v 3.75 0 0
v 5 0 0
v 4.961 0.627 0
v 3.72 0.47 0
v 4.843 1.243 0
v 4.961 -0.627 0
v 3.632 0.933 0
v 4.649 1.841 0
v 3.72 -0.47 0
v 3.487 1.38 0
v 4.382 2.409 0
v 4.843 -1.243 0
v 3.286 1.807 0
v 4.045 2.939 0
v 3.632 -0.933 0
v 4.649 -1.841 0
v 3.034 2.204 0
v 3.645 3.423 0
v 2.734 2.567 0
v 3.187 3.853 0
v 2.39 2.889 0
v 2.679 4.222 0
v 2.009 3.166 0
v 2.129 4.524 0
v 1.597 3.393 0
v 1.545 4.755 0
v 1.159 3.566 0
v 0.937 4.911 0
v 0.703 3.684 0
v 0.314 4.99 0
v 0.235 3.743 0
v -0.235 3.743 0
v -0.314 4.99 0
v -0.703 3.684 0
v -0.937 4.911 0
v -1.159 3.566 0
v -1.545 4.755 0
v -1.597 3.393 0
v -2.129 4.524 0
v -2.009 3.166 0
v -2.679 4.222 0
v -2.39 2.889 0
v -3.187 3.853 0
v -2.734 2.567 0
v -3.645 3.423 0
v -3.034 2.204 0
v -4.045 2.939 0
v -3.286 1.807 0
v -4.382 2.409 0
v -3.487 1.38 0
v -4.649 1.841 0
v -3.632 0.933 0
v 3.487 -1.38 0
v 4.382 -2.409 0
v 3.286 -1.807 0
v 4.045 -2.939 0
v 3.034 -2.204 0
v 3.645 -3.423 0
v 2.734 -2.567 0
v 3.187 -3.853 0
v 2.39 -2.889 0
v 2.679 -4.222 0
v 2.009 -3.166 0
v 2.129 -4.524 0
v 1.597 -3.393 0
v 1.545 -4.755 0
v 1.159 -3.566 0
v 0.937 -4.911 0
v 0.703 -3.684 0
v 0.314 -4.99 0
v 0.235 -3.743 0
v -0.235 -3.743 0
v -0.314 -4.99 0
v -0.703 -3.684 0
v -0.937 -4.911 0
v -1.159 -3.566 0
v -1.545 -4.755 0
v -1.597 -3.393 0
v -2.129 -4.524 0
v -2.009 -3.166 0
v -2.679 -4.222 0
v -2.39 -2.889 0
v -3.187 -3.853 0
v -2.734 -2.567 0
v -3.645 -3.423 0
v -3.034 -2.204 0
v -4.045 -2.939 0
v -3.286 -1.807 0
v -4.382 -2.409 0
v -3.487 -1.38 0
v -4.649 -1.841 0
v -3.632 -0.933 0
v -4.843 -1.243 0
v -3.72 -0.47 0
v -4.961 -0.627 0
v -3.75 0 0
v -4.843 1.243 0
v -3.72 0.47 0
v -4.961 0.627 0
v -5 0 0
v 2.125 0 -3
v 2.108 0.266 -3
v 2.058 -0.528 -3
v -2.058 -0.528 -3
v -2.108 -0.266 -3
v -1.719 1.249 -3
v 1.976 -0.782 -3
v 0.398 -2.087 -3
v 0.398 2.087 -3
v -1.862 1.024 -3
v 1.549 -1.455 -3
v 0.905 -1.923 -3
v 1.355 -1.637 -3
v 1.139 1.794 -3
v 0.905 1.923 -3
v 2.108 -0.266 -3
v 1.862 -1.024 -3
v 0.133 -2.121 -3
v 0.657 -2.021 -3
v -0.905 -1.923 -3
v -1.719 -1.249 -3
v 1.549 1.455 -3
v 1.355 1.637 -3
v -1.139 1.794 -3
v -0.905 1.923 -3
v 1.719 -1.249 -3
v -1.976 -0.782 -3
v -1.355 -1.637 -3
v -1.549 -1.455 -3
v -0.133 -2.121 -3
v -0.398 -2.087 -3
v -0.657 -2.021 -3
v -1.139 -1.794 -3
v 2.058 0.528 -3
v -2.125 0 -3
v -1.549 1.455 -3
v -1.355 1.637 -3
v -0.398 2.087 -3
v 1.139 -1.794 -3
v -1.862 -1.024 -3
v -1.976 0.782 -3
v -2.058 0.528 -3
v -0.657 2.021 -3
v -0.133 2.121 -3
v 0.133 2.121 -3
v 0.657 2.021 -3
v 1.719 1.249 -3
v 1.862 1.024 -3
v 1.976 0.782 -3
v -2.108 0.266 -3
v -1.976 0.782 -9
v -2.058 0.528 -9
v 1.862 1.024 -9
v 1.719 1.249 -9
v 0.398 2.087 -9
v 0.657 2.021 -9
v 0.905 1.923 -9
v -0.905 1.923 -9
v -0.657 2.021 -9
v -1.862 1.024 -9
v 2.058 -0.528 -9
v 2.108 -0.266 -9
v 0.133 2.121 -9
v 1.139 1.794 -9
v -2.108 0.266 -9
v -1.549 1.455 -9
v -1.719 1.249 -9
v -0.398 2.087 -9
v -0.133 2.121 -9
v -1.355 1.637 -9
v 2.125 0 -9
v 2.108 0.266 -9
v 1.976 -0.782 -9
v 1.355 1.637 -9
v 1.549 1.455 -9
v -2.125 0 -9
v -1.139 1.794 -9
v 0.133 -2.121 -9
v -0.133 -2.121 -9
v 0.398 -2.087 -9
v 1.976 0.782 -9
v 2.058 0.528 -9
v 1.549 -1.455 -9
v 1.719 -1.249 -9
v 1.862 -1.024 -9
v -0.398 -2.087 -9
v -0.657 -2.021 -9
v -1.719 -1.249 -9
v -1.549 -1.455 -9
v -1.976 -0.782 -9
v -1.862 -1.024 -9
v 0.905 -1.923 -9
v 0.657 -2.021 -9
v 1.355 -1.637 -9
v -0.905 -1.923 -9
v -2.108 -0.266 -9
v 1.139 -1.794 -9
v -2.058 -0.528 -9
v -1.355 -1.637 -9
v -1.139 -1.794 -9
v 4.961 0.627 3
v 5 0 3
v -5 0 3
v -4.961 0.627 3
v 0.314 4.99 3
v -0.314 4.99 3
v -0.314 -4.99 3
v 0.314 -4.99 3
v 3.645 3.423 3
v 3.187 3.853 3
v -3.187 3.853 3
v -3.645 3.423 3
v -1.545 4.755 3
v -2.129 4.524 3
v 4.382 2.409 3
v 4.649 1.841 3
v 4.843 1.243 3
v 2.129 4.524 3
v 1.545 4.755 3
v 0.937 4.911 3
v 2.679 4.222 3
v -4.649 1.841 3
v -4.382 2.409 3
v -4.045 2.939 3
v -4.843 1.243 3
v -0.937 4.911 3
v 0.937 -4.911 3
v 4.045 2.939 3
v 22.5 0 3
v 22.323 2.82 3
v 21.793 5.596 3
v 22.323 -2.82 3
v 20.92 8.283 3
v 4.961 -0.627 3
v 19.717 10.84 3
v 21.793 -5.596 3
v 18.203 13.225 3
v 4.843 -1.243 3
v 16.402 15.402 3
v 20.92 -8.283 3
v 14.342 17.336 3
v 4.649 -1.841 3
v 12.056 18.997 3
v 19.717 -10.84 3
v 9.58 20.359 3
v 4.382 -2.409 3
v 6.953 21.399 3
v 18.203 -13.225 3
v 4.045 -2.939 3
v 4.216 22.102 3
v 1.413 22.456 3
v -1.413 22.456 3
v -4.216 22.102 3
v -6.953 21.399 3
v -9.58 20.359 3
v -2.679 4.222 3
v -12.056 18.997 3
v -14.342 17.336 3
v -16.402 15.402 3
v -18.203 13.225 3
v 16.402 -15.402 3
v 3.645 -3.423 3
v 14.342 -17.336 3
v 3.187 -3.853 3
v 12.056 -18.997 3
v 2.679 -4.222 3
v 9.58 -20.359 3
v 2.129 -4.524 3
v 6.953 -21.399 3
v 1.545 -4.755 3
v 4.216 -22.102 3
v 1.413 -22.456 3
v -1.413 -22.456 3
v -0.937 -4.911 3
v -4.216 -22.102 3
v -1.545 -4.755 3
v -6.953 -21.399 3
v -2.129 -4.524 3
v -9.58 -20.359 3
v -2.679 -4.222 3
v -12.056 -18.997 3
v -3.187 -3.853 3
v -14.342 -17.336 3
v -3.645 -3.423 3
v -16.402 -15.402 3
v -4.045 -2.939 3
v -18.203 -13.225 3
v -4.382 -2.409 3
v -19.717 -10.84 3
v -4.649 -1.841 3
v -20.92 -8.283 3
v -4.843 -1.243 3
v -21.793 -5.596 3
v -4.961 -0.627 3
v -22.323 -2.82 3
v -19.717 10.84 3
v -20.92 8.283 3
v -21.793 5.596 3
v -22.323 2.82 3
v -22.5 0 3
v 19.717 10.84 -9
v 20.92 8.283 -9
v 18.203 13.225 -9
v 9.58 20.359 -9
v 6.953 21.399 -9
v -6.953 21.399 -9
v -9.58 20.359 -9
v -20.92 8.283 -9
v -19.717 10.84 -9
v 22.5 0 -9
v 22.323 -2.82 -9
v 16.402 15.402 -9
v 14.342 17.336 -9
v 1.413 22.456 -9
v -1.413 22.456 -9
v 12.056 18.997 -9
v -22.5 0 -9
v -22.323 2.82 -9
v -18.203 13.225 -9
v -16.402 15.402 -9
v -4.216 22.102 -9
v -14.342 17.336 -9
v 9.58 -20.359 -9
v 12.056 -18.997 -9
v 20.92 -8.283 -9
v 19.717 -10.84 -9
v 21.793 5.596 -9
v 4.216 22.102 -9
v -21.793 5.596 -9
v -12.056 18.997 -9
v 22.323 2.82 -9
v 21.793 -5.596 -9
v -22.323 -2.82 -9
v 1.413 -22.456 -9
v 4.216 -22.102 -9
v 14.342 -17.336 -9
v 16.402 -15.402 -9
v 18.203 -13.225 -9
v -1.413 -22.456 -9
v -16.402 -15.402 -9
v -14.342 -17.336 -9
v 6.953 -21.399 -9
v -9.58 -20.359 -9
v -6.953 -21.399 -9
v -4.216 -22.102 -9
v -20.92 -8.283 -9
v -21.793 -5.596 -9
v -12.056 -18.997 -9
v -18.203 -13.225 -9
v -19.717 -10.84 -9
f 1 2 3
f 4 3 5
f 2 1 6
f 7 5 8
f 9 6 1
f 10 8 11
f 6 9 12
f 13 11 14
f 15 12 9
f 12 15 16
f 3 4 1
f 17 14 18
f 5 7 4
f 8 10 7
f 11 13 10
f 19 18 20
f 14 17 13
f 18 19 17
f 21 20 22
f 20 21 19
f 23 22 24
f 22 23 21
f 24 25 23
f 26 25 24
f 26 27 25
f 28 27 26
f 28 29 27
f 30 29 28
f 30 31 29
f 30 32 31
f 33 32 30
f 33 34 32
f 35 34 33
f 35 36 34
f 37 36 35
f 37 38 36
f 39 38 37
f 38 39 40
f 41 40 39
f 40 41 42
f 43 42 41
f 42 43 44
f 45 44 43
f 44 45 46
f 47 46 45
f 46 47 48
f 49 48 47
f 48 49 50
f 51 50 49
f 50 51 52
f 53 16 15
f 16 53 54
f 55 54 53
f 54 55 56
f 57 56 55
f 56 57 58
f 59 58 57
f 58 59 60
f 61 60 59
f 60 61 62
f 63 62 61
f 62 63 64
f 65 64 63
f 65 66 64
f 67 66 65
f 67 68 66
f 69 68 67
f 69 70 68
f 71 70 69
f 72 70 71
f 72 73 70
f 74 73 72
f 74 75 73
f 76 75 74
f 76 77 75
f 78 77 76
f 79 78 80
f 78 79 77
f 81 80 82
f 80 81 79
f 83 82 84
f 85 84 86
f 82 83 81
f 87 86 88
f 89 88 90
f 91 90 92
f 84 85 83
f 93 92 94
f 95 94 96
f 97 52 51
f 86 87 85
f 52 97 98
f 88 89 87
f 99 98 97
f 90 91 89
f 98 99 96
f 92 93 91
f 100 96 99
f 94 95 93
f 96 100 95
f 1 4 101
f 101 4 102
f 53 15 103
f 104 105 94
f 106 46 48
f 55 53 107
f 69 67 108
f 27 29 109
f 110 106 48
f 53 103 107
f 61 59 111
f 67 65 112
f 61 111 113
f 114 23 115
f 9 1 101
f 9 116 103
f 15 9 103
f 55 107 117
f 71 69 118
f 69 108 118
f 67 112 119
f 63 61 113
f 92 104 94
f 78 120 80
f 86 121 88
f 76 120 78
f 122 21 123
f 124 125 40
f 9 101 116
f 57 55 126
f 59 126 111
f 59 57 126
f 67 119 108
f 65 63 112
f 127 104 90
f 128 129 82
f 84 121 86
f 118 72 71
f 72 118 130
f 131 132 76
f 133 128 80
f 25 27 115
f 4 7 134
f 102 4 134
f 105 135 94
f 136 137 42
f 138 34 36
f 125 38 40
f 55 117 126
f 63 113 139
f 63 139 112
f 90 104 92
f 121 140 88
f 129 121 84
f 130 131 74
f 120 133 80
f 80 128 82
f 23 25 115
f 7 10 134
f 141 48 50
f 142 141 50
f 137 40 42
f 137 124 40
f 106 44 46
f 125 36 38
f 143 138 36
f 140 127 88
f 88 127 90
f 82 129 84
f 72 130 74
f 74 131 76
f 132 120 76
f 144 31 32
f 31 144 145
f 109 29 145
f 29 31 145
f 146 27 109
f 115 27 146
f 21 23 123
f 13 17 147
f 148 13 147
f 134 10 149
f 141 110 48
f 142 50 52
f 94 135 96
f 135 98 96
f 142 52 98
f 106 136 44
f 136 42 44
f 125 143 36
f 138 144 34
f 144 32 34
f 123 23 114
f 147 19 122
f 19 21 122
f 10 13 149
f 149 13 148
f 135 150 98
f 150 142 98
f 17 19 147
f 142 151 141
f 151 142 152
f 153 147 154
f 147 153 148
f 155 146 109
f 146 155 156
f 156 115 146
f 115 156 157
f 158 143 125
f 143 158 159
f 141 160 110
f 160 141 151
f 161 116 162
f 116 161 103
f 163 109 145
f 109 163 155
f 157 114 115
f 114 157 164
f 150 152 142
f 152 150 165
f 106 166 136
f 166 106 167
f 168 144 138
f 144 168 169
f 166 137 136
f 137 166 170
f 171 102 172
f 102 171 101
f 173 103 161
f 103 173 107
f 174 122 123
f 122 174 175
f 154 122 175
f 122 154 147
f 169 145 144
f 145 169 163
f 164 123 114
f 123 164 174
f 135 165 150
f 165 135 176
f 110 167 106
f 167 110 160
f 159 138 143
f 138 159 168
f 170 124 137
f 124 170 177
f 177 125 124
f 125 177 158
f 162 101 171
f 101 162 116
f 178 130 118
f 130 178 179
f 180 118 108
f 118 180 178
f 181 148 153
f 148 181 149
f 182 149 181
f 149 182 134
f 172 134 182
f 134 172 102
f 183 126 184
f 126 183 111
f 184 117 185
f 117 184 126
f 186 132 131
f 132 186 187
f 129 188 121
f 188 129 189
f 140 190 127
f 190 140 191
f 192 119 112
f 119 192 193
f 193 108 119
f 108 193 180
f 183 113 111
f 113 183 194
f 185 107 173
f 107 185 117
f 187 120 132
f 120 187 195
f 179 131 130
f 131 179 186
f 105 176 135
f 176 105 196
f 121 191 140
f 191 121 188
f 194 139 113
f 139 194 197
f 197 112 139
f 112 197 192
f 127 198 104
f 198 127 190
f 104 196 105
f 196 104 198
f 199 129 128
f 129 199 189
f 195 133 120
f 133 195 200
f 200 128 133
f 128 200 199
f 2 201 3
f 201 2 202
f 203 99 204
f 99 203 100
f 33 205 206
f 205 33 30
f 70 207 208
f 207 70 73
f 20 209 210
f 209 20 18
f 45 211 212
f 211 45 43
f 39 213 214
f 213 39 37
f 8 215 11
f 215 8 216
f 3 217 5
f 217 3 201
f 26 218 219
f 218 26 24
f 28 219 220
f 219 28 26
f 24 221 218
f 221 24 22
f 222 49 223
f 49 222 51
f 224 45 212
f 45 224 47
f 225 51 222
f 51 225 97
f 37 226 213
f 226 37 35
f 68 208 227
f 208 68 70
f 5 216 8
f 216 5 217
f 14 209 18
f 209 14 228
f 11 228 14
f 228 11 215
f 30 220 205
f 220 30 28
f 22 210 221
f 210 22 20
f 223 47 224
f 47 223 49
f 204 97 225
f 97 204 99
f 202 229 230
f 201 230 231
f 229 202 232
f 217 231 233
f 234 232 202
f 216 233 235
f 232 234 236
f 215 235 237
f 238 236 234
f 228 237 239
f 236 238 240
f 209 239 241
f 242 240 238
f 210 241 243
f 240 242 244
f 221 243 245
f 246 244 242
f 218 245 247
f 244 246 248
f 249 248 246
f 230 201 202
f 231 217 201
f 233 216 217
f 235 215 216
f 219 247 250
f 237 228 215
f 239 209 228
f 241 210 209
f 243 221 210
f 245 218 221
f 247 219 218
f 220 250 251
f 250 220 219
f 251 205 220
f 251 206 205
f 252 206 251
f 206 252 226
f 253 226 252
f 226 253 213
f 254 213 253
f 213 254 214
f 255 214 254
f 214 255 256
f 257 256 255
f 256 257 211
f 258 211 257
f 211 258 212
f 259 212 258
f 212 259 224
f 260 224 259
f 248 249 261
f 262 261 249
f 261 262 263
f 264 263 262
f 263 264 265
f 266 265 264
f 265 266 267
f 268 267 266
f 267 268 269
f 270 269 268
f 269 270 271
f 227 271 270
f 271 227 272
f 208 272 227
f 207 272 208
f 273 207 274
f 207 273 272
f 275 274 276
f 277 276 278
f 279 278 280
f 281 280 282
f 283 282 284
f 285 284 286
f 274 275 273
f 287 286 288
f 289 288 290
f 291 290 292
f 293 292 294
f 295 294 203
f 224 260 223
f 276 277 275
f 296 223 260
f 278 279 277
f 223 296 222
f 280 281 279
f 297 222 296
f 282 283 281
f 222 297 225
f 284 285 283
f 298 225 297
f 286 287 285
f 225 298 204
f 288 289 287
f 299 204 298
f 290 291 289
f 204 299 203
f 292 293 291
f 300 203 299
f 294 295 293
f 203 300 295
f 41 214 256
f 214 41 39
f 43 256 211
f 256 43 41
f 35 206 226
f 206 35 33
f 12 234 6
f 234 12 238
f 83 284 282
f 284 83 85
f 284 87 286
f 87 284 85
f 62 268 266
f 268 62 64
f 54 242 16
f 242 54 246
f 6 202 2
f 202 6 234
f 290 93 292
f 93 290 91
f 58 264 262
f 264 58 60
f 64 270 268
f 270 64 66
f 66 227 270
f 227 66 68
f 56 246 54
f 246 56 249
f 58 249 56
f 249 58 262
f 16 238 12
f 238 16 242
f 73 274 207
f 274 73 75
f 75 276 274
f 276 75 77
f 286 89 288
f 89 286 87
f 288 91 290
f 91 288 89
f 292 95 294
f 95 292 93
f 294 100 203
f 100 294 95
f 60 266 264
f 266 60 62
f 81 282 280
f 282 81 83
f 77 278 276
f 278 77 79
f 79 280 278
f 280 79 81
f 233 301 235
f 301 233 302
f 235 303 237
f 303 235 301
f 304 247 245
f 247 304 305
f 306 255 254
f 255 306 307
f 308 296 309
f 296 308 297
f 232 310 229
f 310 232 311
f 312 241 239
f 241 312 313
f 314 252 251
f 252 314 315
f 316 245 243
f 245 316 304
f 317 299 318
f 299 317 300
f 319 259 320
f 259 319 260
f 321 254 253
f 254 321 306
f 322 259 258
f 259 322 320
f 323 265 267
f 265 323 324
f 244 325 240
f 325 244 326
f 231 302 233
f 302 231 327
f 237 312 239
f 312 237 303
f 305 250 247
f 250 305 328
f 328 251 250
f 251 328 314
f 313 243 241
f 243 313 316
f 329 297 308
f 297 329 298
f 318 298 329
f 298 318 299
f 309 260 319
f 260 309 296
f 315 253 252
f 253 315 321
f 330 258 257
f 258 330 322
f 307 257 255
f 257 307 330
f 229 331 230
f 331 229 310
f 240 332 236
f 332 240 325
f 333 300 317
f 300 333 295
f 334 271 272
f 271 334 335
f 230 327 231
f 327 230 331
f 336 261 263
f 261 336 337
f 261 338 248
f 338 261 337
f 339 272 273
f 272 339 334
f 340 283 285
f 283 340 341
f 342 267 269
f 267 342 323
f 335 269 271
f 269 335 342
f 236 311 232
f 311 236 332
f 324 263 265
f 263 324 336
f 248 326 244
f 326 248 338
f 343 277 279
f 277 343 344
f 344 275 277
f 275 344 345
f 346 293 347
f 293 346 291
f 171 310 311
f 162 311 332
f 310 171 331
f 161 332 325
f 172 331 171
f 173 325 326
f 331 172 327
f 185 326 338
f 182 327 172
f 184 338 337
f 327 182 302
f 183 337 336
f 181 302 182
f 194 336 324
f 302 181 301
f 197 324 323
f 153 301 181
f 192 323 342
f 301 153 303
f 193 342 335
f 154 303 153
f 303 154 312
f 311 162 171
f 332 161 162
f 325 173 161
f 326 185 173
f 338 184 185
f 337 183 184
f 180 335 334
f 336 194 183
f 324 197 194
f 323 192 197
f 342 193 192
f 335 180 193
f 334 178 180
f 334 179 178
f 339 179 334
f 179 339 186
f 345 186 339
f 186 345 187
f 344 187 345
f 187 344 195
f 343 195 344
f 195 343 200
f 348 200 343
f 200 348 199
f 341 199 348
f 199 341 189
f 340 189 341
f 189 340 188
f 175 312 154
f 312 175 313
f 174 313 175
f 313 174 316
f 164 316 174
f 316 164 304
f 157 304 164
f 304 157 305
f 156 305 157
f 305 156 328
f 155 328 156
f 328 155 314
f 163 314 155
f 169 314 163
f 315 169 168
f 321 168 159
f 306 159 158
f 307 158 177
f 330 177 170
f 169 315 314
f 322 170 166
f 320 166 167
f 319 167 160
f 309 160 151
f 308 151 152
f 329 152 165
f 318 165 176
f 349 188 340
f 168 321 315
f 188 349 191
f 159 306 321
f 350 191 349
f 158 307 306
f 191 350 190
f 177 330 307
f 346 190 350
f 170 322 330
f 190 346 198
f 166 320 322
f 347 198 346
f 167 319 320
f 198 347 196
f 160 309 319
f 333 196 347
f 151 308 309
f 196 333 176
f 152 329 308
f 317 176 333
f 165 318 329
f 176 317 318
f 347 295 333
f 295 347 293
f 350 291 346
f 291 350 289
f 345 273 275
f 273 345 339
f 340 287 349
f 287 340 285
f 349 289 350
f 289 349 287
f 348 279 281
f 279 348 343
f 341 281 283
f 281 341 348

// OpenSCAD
$fn = 50;

difference() {
	union() {
		translate(v = [0, 0, -9.0]) {
			cylinder(h = 12, r = 22.5);
		}
	}
	union() {
		translate(v = [0, 0, 0]) {
			rotate(a = [0, 0, 0]) {
				difference() {
					union() {
						translate(v = [0, 0, -12.0]) {
							cylinder(h = 12, r = 2.0);
						}
						translate(v = [0, 0, -3]) {
							cylinder(h = 3, r1 = 2.125, r2 = 3.75);
						}
						translate(v = [0, 0, -12.0]) {
							cylinder(h = 12, r = 2.125);
						}
						translate(v = [0, 0, -12.0]) {
							cylinder(h = 12, r = 2.0);
						}
					}
					union();
				}
			}
		}
		#cylinder(h = 3, r = 5.0);
	}
}
